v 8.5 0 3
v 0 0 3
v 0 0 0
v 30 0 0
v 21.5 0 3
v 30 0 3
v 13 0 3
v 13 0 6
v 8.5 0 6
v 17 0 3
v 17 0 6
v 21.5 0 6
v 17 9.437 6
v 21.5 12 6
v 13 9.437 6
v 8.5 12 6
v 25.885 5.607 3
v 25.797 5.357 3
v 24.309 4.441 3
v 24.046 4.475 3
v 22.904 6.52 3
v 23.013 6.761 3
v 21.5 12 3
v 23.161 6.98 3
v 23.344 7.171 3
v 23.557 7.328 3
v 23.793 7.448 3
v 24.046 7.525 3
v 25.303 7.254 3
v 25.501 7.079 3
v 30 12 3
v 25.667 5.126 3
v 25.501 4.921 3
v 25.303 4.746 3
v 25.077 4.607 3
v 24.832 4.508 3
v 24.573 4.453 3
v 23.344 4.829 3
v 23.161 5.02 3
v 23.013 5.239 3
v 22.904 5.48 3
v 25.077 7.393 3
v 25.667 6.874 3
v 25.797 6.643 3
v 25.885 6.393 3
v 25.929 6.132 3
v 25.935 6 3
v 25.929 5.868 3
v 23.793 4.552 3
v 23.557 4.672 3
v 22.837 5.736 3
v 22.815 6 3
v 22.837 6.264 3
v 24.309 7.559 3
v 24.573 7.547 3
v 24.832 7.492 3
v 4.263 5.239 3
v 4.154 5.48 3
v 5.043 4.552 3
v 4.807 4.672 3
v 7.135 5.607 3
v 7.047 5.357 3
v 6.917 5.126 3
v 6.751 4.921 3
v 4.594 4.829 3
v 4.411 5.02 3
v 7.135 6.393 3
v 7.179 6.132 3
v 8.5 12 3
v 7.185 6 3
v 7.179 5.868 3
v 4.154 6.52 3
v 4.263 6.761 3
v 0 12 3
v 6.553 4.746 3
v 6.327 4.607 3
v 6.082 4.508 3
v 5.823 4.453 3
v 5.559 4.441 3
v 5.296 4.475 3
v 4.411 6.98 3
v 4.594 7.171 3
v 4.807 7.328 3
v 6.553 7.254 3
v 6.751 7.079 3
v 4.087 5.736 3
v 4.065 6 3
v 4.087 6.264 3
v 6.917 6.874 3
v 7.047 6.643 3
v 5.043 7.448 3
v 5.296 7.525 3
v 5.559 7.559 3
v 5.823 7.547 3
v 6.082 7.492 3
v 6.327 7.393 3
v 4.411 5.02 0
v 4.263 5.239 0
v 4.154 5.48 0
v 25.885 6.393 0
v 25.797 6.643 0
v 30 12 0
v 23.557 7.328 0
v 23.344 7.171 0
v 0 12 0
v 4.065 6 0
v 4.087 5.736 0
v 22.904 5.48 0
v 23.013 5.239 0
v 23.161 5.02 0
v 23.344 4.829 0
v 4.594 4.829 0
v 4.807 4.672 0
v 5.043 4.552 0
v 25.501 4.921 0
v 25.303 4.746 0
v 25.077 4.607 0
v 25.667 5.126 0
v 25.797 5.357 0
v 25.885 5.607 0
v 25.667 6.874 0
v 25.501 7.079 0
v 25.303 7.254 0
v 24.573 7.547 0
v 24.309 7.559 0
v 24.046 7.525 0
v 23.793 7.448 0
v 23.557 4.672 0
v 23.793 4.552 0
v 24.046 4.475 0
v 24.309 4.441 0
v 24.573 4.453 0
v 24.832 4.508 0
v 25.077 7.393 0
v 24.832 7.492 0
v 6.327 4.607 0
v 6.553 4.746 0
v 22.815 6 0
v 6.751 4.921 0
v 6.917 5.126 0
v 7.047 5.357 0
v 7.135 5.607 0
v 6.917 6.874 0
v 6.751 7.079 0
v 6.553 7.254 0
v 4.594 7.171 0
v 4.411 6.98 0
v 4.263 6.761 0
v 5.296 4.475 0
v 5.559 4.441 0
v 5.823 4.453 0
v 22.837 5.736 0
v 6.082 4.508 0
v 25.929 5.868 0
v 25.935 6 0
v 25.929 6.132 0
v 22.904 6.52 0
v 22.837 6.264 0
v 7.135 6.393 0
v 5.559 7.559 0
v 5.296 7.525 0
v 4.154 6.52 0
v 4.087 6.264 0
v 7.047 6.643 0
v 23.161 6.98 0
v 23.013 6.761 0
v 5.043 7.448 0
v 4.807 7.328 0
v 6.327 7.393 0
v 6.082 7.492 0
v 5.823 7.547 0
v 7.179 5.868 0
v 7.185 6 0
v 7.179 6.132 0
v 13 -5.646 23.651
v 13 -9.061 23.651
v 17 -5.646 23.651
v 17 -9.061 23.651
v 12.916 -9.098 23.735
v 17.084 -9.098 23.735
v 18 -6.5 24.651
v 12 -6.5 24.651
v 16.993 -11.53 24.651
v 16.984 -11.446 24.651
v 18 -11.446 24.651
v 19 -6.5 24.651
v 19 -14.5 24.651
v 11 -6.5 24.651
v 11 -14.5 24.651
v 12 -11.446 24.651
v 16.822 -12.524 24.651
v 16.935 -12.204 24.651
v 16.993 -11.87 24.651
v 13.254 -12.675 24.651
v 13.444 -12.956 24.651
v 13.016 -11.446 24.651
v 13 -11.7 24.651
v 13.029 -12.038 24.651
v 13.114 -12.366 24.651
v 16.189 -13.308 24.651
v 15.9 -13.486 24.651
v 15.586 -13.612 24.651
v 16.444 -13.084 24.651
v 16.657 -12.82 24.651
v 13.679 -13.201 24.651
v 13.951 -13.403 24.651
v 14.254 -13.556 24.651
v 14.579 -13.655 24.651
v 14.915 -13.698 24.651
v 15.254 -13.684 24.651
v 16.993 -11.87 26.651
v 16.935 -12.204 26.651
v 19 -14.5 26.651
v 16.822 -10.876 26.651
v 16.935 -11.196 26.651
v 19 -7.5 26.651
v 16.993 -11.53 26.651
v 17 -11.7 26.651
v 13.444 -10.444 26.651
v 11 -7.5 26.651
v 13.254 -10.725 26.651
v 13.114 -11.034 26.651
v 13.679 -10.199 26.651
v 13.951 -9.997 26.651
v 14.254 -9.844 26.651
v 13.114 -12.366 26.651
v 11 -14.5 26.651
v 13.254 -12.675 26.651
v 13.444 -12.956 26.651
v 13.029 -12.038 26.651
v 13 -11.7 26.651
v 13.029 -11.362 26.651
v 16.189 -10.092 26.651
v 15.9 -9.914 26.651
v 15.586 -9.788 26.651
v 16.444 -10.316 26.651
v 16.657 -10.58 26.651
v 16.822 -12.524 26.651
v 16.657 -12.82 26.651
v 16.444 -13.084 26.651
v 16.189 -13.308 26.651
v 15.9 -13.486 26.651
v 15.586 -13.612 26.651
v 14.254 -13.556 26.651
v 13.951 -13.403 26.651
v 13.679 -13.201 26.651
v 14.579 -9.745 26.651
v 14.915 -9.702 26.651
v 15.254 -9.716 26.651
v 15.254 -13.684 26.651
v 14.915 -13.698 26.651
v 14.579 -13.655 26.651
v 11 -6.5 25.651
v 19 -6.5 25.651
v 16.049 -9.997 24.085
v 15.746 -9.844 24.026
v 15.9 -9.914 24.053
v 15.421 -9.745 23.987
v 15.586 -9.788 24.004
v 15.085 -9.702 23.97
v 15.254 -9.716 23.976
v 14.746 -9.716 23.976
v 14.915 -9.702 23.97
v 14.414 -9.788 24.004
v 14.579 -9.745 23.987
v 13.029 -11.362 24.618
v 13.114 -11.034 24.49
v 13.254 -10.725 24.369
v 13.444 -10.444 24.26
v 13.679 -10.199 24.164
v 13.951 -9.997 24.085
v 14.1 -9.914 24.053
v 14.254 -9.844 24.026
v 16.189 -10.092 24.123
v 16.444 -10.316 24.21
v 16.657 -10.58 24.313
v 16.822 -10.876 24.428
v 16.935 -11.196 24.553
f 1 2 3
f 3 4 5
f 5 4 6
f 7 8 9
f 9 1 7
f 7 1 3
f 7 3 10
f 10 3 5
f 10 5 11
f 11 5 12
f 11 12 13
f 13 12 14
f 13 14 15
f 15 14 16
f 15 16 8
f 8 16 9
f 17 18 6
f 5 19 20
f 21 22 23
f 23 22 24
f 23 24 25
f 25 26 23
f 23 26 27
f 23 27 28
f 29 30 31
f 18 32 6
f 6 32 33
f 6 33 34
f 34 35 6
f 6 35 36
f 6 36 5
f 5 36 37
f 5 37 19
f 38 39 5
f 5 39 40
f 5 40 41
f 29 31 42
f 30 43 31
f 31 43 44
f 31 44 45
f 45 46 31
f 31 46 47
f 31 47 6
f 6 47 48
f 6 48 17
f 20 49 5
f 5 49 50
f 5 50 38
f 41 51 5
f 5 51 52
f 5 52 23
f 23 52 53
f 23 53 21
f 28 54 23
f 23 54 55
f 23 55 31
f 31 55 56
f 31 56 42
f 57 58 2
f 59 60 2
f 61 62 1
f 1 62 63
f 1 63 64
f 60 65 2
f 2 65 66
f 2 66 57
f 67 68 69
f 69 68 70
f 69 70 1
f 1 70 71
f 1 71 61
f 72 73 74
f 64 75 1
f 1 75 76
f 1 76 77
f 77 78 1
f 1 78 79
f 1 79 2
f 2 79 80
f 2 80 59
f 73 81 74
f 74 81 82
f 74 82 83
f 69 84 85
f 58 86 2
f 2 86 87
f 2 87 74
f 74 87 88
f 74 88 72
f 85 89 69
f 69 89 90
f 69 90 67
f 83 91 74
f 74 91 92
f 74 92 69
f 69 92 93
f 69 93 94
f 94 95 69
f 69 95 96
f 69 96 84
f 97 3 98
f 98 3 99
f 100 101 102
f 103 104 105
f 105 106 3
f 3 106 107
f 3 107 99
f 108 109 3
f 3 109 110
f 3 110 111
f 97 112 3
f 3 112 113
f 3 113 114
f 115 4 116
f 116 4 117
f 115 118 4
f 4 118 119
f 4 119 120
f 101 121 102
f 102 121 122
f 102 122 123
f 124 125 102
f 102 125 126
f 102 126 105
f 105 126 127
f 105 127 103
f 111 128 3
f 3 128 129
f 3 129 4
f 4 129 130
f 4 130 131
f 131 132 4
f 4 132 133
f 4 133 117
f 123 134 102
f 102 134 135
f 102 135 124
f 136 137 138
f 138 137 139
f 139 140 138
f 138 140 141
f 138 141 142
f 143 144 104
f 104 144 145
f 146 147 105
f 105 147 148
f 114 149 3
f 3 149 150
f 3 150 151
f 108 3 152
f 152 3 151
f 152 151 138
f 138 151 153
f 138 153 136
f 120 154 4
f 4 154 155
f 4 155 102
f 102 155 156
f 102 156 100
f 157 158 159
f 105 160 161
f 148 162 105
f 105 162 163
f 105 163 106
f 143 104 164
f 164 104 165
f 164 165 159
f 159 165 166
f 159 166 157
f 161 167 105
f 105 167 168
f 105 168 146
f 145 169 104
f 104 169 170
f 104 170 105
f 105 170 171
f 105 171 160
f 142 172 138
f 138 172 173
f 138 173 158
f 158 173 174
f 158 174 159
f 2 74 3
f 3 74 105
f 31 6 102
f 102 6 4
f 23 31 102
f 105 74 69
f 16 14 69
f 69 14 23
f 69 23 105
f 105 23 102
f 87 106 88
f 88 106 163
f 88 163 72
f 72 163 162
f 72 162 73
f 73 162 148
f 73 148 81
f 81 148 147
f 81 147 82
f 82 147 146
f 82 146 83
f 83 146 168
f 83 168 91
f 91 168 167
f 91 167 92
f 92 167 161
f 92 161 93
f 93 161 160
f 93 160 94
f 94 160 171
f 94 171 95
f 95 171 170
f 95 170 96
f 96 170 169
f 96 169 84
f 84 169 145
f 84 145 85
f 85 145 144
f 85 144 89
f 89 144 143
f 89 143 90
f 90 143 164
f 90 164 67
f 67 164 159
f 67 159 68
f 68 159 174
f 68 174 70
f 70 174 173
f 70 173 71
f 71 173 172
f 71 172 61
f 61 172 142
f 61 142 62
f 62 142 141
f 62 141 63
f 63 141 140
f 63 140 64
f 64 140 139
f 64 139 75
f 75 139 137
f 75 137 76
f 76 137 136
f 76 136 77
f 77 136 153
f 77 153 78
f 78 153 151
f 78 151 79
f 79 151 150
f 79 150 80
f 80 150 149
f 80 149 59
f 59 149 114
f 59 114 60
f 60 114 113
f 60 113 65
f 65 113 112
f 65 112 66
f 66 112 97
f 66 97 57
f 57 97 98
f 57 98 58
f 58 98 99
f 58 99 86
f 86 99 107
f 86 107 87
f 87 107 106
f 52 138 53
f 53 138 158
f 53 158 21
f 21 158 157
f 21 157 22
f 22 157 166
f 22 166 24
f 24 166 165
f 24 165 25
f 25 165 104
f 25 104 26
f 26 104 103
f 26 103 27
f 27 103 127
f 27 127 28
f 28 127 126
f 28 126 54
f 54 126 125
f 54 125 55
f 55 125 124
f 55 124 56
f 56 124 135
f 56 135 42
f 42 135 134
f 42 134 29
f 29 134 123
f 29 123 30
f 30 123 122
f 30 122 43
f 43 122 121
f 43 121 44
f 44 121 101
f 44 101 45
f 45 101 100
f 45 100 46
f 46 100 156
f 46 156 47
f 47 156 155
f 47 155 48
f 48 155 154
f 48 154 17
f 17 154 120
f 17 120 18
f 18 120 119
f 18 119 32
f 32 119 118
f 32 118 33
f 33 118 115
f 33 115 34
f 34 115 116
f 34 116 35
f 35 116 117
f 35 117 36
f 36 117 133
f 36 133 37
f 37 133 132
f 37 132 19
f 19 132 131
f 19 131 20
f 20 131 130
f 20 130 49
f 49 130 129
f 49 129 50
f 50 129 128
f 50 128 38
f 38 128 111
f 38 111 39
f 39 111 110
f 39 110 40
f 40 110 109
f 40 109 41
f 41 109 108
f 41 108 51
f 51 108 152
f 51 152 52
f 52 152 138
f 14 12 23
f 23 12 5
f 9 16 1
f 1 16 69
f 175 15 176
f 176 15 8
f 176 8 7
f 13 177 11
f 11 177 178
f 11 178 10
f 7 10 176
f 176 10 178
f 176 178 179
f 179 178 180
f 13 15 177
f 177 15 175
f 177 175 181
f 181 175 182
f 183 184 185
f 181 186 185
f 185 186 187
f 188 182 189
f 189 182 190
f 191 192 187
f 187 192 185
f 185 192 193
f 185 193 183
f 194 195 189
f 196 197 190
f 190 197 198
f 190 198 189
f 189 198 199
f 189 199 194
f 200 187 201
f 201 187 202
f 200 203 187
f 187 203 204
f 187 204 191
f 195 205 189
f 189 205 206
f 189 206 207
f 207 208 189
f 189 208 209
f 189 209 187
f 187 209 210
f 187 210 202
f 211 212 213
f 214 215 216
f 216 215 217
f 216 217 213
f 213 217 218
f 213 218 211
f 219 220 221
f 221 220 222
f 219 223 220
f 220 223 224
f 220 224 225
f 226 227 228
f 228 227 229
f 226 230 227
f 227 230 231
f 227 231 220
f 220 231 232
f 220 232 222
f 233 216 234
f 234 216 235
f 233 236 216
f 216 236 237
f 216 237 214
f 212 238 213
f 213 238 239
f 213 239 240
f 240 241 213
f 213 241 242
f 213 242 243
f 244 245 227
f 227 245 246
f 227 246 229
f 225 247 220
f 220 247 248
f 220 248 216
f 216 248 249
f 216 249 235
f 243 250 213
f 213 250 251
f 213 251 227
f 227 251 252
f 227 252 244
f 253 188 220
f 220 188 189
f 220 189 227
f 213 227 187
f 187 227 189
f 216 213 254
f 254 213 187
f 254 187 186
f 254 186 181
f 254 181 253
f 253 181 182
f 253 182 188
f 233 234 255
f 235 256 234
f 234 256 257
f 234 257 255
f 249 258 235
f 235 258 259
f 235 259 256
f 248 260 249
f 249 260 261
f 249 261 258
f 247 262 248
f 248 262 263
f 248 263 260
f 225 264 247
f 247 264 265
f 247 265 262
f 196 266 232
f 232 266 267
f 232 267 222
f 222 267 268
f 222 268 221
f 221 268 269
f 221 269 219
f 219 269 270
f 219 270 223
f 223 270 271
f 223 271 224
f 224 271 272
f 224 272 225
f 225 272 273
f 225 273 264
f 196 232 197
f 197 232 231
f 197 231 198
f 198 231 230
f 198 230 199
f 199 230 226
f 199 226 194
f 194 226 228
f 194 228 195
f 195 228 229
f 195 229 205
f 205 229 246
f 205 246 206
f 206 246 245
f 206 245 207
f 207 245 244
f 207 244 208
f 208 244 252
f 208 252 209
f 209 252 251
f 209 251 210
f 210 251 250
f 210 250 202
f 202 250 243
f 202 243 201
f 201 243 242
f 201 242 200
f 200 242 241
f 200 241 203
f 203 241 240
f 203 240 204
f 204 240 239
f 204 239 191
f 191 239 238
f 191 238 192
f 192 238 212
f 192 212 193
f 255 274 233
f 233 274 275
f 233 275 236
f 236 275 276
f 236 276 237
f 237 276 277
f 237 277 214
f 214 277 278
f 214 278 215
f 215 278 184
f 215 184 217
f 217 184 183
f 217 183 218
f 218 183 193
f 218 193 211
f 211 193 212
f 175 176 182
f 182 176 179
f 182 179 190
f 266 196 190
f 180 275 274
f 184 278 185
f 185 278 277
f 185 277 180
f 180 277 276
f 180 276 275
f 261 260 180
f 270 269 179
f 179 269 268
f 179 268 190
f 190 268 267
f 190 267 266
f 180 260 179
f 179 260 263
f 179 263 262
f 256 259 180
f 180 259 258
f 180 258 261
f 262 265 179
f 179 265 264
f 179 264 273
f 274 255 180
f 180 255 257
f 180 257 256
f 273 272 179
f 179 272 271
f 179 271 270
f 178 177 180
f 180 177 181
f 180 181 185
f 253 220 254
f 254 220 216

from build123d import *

# Parameters (mm, degrees)
SKETCH_1_W           = 30
SKETCH_1_H           = 12
SKETCH_1_R           = 1.56
EXTRUDE_1_DEPTH      = 3
SKETCH_2_W           = 13
SKETCH_2_H           = 12
EXTRUDE_2_DEPTH      = 3
EXTRUDE_3_DEPTH      = 2
EXTRUDE_3_DEPTH_BACK = 2
SKETCH_8_W           = 8
SKETCH_8_H           = 8
SKETCH_8_R           = 2
EXTRUDE_4_DEPTH      = 2
CHAMFER_3_SIZE       = 1.945839098
CHAMFER_3_SIZE_2     = 1
CHAMFER_6_SIZE       = 1


with BuildPart() as part:
    # 草图1 → 凸台-拉伸1 (new body)
    with BuildSketch(Plane.XY):
        with Locations((15, 6)):
            Rectangle(SKETCH_1_W, SKETCH_1_H)
        with Locations((5.625, 6)):
            Circle(SKETCH_1_R, mode=Mode.SUBTRACT)
        with Locations((24.375, 6)):
            Circle(SKETCH_1_R, mode=Mode.SUBTRACT)
    extrude(amount=EXTRUDE_1_DEPTH)

    # 草图2 → 凸台-拉伸2 (add)
    with BuildSketch(Plane.XY.offset(3)):
        with Locations((15, 6)):
            Rectangle(SKETCH_2_W, SKETCH_2_H)
    extrude(amount=EXTRUDE_2_DEPTH)

    # 草图4 → 凸台-拉伸3 (add, two sides: drawn at the far end of the back side and taken through both)
    with BuildSketch(Plane(origin=(15, 0, 0), x_dir=(0, 0, -1), z_dir=(1, 0, 0)).offset(-EXTRUDE_3_DEPTH_BACK)):
        Polygon((-3, 0), (-24.650635095, -9.5), (-24.650635095, -6.5), (-3, 12), (-3, 6), align=None)
    extrude(amount=EXTRUDE_3_DEPTH + EXTRUDE_3_DEPTH_BACK)

    # 草图8 → 凸台-拉伸4 (add)
    with BuildSketch(Plane.XY.offset(24.650635095)):
        with Locations((15, -10.5)):
            Rectangle(SKETCH_8_W, SKETCH_8_H)
        with Locations((15, -11.7)):
            Circle(SKETCH_8_R, mode=Mode.SUBTRACT)
    extrude(amount=EXTRUDE_4_DEPTH)

    # 倒角3
    # the kernel refuses this chamfer: 1.945839098, 1 mm, written as the material it adds along each edge
    with BuildSketch(Plane(origin=(17, -9.5, 24.650635095), x_dir=(0, -0.9999018246669207, 0.014012174269630025), z_dir=(-1, 0, 0))) as chamfer_3_piece_1_section:
        Polygon((CHAMFER_3_SIZE * 0.999901824771, -CHAMFER_3_SIZE * 0.0140121742711), (-CHAMFER_3_SIZE_2 * 0.414599028562, -CHAMFER_3_SIZE_2 * 0.910004200823), (0, 0), align=None)
    chamfer_3_piece_1 = extrude(amount=4, mode=Mode.PRIVATE)
    chamfer_3_piece_1 = chamfer_3_piece_1 - Plane(origin=(15, -11.7, 24.270363883), x_dir=(1, 0, 0), z_dir=(0, 0, -1)) * Cylinder(2, 16, mode=Mode.PRIVATE)
    add(chamfer_3_piece_1)
    # the kernel refuses this chamfer: 1.945839098, 1 mm, written as the material it adds along each edge
    with BuildSketch(Plane(origin=(17, -14.017522086, 24.650635095), x_dir=(-0.027495876610585647, 0, -0.9996219169112968), z_dir=(0, 1, 0))) as chamfer_3_2_piece_1_section:
        Polygon((CHAMFER_3_SIZE_2 * 0.999621916911, -CHAMFER_3_SIZE_2 * 0.0274958766106), (-CHAMFER_3_SIZE_2 * 0.0274958766106, -CHAMFER_3_SIZE_2 * 0.999621916911), (0, 0), align=None)
    chamfer_3_2_piece_1 = extrude(amount=7.517522086, mode=Mode.PRIVATE)
    chamfer_3_2_piece_1 = split(chamfer_3_2_piece_1, bisect_by=Plane(origin=(17.387306177, -10.236604408, 24.178960298), z_dir=(0, 0.3633942713145685, 0.9316354456415631)), keep=Keep.TOP, mode=Mode.PRIVATE)
    chamfer_3_2_piece_1 = split(chamfer_3_2_piece_1, bisect_by=Plane(origin=(17.387306177, -9.521448323, 24.699516127), z_dir=(0, -0.9157242946977782, -0.4018071877160198)), keep=Keep.TOP, mode=Mode.PRIVATE)
    add(chamfer_3_2_piece_1)
    with BuildSketch(Plane(origin=(17, -14.017522086, 24.650635095), x_dir=(-0.027495876610585647, 0, -0.9996219169112968), z_dir=(0, 1, 0))) as chamfer_3_2_piece_2_section:
        Polygon((CHAMFER_3_SIZE_2 * 0.999621916911, -CHAMFER_3_SIZE_2 * 0.0274958766106), (-CHAMFER_3_SIZE_2 * 0.0274958766106, -CHAMFER_3_SIZE_2 * 0.999621916911), (0, 0), align=None)
    chamfer_3_2_piece_2 = extrude(amount=7.517522086, mode=Mode.PRIVATE)
    chamfer_3_2_piece_2 = split(chamfer_3_2_piece_2, bisect_by=Plane(origin=(16.988383788, -8.994550798, 23.694484135), z_dir=(0, -0.3633942713145685, -0.9316354456415631)), keep=Keep.TOP, mode=Mode.PRIVATE)
    chamfer_3_2_piece_2 = split(chamfer_3_2_piece_2, bisect_by=Plane(origin=(16.988383788, -9.059659256, 23.647092278), z_dir=(0, 0.9157242946977782, 0.4018071877160198)), keep=Keep.TOP, mode=Mode.PRIVATE)
    add(chamfer_3_2_piece_2)
    with BuildSketch(Plane(origin=(17, -14.017522086, 24.650635095), x_dir=(-0.027495876610585647, 0, -0.9996219169112968), z_dir=(0, 1, 0))) as chamfer_3_2_piece_3_section:
        Polygon((CHAMFER_3_SIZE_2 * 0.999621916911, -CHAMFER_3_SIZE_2 * 0.0274958766106), (-CHAMFER_3_SIZE_2 * 0.0274958766106, -CHAMFER_3_SIZE_2 * 0.999621916911), (0, 0), align=None)
    chamfer_3_2_piece_3 = extrude(amount=7.517522086, mode=Mode.PRIVATE)
    chamfer_3_2_piece_3 = split(chamfer_3_2_piece_3, bisect_by=Plane(origin=(17.33510096, -8.285636608, 23.417964648), z_dir=(0, 0.3633942713145685, 0.9316354456415631)), keep=Keep.TOP, mode=Mode.PRIVATE)
    chamfer_3_2_piece_3 = split(chamfer_3_2_piece_3, bisect_by=Plane(origin=(17.33510096, -9.12878782, 23.804637257), z_dir=(0, 0.9157242946977782, 0.4018071877160198)), keep=Keep.TOP, mode=Mode.PRIVATE)
    chamfer_3_2_piece_3 = split(chamfer_3_2_piece_3, bisect_by=Plane(origin=(17.33510096, -6.945348717, 25.171828747), z_dir=(0, -0.7602566248543531, -0.649622863179143)), keep=Keep.TOP, mode=Mode.PRIVATE)
    add(chamfer_3_2_piece_3)
    with BuildSketch(Plane(origin=(17, -14.017522086, 24.650635095), x_dir=(-0.027495876610585647, 0, -0.9996219169112968), z_dir=(0, 1, 0))) as chamfer_3_2_piece_4_section:
        Polygon((CHAMFER_3_SIZE_2 * 0.999621916911, -CHAMFER_3_SIZE_2 * 0.0274958766106), (-CHAMFER_3_SIZE_2 * 0.0274958766106, -CHAMFER_3_SIZE_2 * 0.999621916911), (0, 0), align=None)
    chamfer_3_2_piece_4 = extrude(amount=10.089205074, mode=Mode.PRIVATE)
    chamfer_3_2_piece_4 = split(chamfer_3_2_piece_4, bisect_by=Plane(origin=(17.227791028, -6.5, 24.129350329), z_dir=(0, 1, 0)), keep=Keep.TOP, mode=Mode.PRIVATE)
    chamfer_3_2_piece_4 = split(chamfer_3_2_piece_4, bisect_by=Plane(origin=(17.227791028, -6.148560632, 24.239343986), z_dir=(0, -0.7602566248543531, -0.649622863179143)), keep=Keep.TOP, mode=Mode.PRIVATE)
    add(chamfer_3_2_piece_4)
    with BuildSketch(Plane(origin=(13, -3.928317012, 24.650635095), x_dir=(0.027495876610585647, 0, -0.9996219169112968), z_dir=(0, -1, 0))) as chamfer_3_2_piece_5_section:
        Polygon((CHAMFER_3_SIZE_2 * 0.999621916911, -CHAMFER_3_SIZE_2 * 0.0274958766106), (-CHAMFER_3_SIZE_2 * 0.0274958766106, -CHAMFER_3_SIZE_2 * 0.999621916911), (0, 0), align=None)
    chamfer_3_2_piece_5 = extrude(amount=10.089205074, mode=Mode.PRIVATE)
    chamfer_3_2_piece_5 = split(chamfer_3_2_piece_5, bisect_by=Plane(origin=(12.772208972, -6.5, 24.129350329), z_dir=(0, 1, 0)), keep=Keep.TOP, mode=Mode.PRIVATE)
    chamfer_3_2_piece_5 = split(chamfer_3_2_piece_5, bisect_by=Plane(origin=(12.772208972, -6.148560632, 24.239343986), z_dir=(0, -0.7602566248543531, -0.649622863179143)), keep=Keep.TOP, mode=Mode.PRIVATE)
    add(chamfer_3_2_piece_5)
    with BuildSketch(Plane(origin=(13, -6.5, 24.650635095), x_dir=(0.027495876610585647, 0, -0.9996219169112968), z_dir=(0, -1, 0))) as chamfer_3_2_piece_6_section:
        Polygon((CHAMFER_3_SIZE_2 * 0.999621916911, -CHAMFER_3_SIZE_2 * 0.0274958766106), (-CHAMFER_3_SIZE_2 * 0.0274958766106, -CHAMFER_3_SIZE_2 * 0.999621916911), (0, 0), align=None)
    chamfer_3_2_piece_6 = extrude(amount=7.517522086, mode=Mode.PRIVATE)
    chamfer_3_2_piece_6 = split(chamfer_3_2_piece_6, bisect_by=Plane(origin=(12.66489904, -8.285636608, 23.417964648), z_dir=(0, 0.3633942713145685, 0.9316354456415631)), keep=Keep.TOP, mode=Mode.PRIVATE)
    chamfer_3_2_piece_6 = split(chamfer_3_2_piece_6, bisect_by=Plane(origin=(12.66489904, -9.12878782, 23.804637257), z_dir=(0, 0.9157242946977782, 0.4018071877160198)), keep=Keep.TOP, mode=Mode.PRIVATE)
    chamfer_3_2_piece_6 = split(chamfer_3_2_piece_6, bisect_by=Plane(origin=(12.66489904, -6.945348717, 25.171828747), z_dir=(0, -0.7602566248543531, -0.649622863179143)), keep=Keep.TOP, mode=Mode.PRIVATE)
    add(chamfer_3_2_piece_6)
    with BuildSketch(Plane(origin=(13, -6.5, 24.650635095), x_dir=(0.027495876610585647, 0, -0.9996219169112968), z_dir=(0, -1, 0))) as chamfer_3_2_piece_7_section:
        Polygon((CHAMFER_3_SIZE_2 * 0.999621916911, -CHAMFER_3_SIZE_2 * 0.0274958766106), (-CHAMFER_3_SIZE_2 * 0.0274958766106, -CHAMFER_3_SIZE_2 * 0.999621916911), (0, 0), align=None)
    chamfer_3_2_piece_7 = extrude(amount=7.517522086, mode=Mode.PRIVATE)
    chamfer_3_2_piece_7 = split(chamfer_3_2_piece_7, bisect_by=Plane(origin=(12.612693823, -10.236604408, 24.178960298), z_dir=(0, 0.3633942713145685, 0.9316354456415631)), keep=Keep.TOP, mode=Mode.PRIVATE)
    chamfer_3_2_piece_7 = split(chamfer_3_2_piece_7, bisect_by=Plane(origin=(12.612693823, -9.521448323, 24.699516127), z_dir=(0, -0.9157242946977782, -0.4018071877160198)), keep=Keep.TOP, mode=Mode.PRIVATE)
    add(chamfer_3_2_piece_7)
    with BuildSketch(Plane(origin=(13, -6.5, 24.650635095), x_dir=(0.027495876610585647, 0, -0.9996219169112968), z_dir=(0, -1, 0))) as chamfer_3_2_piece_8_section:
        Polygon((CHAMFER_3_SIZE_2 * 0.999621916911, -CHAMFER_3_SIZE_2 * 0.0274958766106), (-CHAMFER_3_SIZE_2 * 0.0274958766106, -CHAMFER_3_SIZE_2 * 0.999621916911), (0, 0), align=None)
    chamfer_3_2_piece_8 = extrude(amount=7.517522086, mode=Mode.PRIVATE)
    chamfer_3_2_piece_8 = split(chamfer_3_2_piece_8, bisect_by=Plane(origin=(13.011616212, -8.994550798, 23.694484135), z_dir=(0, -0.3633942713145685, -0.9316354456415631)), keep=Keep.TOP, mode=Mode.PRIVATE)
    chamfer_3_2_piece_8 = split(chamfer_3_2_piece_8, bisect_by=Plane(origin=(13.011616212, -9.059659256, 23.647092278), z_dir=(0, 0.9157242946977782, 0.4018071877160198)), keep=Keep.TOP, mode=Mode.PRIVATE)
    add(chamfer_3_2_piece_8)

    # 倒角6
    chamfer_6_edges = [part.edges().sort_by_distance(p)[0] for p in [
        (15, -6.5, 26.650635095),
    ]]
    chamfer(chamfer_6_edges, length=CHAMFER_6_SIZE)


solid = part.part
